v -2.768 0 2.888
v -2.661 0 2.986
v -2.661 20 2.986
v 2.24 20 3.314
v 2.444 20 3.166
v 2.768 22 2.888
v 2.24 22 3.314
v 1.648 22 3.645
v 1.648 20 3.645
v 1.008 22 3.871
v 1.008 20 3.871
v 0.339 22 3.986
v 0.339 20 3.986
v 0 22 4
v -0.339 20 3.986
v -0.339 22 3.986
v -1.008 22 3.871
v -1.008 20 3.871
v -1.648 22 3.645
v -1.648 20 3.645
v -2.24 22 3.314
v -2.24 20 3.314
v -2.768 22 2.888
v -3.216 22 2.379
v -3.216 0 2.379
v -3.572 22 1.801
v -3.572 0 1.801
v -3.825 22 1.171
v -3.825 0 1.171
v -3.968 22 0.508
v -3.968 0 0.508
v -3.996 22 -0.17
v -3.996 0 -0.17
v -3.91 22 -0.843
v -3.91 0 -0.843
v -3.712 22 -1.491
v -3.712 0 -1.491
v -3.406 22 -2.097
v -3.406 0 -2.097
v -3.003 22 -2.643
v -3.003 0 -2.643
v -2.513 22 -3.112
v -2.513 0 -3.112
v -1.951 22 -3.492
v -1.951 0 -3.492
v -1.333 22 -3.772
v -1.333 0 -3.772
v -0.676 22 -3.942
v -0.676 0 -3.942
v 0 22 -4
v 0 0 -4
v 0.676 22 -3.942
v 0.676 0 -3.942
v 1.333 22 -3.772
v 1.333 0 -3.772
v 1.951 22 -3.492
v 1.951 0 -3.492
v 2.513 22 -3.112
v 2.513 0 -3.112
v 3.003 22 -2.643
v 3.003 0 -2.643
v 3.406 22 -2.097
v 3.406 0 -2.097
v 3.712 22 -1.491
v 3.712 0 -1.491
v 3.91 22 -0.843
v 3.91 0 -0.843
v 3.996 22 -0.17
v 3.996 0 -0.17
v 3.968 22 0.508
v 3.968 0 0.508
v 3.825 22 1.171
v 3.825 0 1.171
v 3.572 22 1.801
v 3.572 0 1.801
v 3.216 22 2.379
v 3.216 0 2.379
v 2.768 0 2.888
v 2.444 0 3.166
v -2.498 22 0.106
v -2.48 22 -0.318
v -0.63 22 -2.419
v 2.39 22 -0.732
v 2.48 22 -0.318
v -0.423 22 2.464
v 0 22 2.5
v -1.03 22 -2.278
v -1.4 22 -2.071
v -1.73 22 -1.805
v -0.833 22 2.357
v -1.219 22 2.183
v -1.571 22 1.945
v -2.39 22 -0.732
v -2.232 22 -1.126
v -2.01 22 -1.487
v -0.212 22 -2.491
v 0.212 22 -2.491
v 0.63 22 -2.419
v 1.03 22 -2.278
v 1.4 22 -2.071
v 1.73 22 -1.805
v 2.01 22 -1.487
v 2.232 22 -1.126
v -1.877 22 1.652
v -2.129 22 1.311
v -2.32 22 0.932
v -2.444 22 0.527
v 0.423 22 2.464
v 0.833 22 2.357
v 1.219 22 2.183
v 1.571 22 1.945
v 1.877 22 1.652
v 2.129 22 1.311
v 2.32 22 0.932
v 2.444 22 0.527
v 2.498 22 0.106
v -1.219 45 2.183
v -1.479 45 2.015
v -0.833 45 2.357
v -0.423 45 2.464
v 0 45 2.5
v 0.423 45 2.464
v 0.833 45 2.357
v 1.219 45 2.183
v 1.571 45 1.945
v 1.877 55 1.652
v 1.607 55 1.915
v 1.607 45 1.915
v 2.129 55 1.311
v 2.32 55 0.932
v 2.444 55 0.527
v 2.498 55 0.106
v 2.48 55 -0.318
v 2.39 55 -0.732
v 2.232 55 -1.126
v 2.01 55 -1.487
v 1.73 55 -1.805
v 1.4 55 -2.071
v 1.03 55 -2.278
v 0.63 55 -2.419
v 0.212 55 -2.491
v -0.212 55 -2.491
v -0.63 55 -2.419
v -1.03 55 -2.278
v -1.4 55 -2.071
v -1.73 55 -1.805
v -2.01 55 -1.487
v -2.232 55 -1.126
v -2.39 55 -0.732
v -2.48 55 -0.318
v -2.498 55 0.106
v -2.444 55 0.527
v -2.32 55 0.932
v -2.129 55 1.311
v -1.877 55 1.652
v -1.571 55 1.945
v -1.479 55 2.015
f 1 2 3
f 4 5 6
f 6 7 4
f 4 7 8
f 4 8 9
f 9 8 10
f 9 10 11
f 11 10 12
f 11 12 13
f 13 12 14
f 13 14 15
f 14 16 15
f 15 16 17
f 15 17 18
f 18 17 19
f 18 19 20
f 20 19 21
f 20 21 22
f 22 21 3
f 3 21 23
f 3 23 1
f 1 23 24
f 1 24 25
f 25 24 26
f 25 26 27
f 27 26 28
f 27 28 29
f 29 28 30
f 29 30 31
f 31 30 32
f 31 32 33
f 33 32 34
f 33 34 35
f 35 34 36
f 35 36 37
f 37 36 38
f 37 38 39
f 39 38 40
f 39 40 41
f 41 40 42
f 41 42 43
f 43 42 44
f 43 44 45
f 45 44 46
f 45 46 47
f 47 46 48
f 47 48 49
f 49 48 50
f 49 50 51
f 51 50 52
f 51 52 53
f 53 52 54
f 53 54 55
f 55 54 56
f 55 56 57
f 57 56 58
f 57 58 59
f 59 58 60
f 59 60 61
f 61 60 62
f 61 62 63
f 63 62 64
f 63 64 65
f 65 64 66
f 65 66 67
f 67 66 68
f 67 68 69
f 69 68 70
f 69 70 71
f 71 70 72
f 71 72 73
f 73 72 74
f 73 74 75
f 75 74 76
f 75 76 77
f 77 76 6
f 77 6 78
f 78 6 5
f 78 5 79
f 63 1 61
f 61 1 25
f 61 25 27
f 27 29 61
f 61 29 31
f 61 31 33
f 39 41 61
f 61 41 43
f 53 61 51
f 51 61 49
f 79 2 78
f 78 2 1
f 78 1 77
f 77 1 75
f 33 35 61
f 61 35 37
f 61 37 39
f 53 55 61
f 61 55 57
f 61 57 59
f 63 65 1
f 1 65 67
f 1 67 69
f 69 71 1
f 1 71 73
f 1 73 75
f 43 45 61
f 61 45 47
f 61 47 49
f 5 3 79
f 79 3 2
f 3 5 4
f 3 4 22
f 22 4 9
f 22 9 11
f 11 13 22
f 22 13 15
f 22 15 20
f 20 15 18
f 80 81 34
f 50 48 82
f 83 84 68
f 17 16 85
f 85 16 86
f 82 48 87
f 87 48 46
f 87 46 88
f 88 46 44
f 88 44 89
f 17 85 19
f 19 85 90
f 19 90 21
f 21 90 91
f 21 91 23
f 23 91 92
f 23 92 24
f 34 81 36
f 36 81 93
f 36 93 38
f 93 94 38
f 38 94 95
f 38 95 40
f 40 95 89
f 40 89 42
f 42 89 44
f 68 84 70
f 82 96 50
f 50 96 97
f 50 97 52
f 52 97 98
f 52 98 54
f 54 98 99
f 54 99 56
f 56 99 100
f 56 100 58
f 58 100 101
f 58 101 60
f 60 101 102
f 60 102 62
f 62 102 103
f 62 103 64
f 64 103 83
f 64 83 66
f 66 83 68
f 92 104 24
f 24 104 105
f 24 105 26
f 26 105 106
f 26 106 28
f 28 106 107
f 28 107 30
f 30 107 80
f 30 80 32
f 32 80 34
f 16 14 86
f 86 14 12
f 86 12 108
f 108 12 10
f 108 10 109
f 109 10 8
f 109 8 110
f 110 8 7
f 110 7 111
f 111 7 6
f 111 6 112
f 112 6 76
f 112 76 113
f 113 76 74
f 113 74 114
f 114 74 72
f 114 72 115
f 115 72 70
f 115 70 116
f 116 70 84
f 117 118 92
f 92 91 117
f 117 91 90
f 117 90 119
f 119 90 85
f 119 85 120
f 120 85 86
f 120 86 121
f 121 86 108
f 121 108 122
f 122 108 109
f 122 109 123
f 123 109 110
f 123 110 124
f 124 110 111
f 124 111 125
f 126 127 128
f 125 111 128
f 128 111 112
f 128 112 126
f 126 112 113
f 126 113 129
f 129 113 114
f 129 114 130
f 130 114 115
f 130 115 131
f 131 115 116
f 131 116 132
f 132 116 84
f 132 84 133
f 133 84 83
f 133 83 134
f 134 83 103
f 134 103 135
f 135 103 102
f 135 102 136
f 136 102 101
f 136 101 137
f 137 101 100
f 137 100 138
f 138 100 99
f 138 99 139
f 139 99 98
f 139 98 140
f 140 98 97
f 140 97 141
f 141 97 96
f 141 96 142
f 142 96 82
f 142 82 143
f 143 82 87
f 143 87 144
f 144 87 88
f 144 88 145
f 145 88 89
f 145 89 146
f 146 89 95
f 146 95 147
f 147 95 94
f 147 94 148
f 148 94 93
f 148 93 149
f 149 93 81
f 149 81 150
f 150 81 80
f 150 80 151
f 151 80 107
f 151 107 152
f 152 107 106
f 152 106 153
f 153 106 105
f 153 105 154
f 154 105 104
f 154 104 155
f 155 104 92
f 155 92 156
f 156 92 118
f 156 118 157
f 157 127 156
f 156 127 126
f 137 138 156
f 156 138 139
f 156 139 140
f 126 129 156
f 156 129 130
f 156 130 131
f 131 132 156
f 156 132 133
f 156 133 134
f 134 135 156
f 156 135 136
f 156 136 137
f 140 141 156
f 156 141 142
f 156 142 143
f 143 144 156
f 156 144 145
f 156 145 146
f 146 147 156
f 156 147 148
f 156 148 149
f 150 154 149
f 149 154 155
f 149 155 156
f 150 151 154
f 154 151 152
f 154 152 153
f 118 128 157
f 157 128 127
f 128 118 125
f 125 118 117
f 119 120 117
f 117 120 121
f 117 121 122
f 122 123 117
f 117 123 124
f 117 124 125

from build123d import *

# Parameters (mm, degrees)
SKETCH1_R           = 4
BOSS_EXTRUDE1_DEPTH = 55
CUT_EXTRUDE1_DEPTH  = 20
CUT_EXTRUDE2_START  = -33
SKETCH3_R           = 4
SKETCH3_R_2         = 2.5
CUT_EXTRUDE2_DEPTH  = 33
CUT_EXTRUDE3_START  = -10
CUT_EXTRUDE3_DEPTH  = 10


with BuildPart() as part:
    # Sketch1 → Boss-Extrude1 (new body)
    with BuildSketch(Plane(origin=(0, 0, 0), x_dir=(1, 0, 0), z_dir=(0, 1, 0))):
        with Locations(Location((0, 0, 0), (0, 0, 270))):
            Circle(SKETCH1_R)
    extrude(amount=BOSS_EXTRUDE1_DEPTH)

    # Sketch2 → Cut-Extrude1 (cut)
    with BuildSketch(Plane.XZ):
        with BuildLine():
            Line((-2.661339853, 2.986179865), (2.444122866, 3.166427547))
            ThreePointArc((2.444122866, 3.166427547), (-0.14113154, 3.997509461), (-2.661339853, 2.986179865))
        make_face()
    extrude(amount=-CUT_EXTRUDE1_DEPTH, mode=Mode.SUBTRACT)

    # Sketch3 → Cut-Extrude2 (cut)
    with BuildSketch(Plane(origin=(0, 55, 0), x_dir=(1, 0, 0), z_dir=(0, 1, 0)).offset(CUT_EXTRUDE2_START)):
        with Locations(Location((0, 0, 0), (0, 0, 228.291972002))):
            Circle(SKETCH3_R)
        with Locations(Location((0, 0, 0), (0, 0, 270))):
            Circle(SKETCH3_R_2, mode=Mode.SUBTRACT)
    extrude(amount=CUT_EXTRUDE2_DEPTH, mode=Mode.SUBTRACT)

    # Sketch6 → Cut-Extrude3 (cut)
    with BuildSketch(Plane(origin=(0, 55, 0), x_dir=(1, 0, 0), z_dir=(0, 1, 0)).offset(CUT_EXTRUDE3_START)):
        with BuildLine():
            Line((-1.479257304, -2.015390242), (1.606973788, -1.915107111))
            ThreePointArc((1.606973788, -1.915107111), (0.081191451, -2.498681242), (-1.479257304, -2.015390242))
        make_face()
    extrude(amount=CUT_EXTRUDE3_DEPTH, mode=Mode.SUBTRACT)


solid = part.part
